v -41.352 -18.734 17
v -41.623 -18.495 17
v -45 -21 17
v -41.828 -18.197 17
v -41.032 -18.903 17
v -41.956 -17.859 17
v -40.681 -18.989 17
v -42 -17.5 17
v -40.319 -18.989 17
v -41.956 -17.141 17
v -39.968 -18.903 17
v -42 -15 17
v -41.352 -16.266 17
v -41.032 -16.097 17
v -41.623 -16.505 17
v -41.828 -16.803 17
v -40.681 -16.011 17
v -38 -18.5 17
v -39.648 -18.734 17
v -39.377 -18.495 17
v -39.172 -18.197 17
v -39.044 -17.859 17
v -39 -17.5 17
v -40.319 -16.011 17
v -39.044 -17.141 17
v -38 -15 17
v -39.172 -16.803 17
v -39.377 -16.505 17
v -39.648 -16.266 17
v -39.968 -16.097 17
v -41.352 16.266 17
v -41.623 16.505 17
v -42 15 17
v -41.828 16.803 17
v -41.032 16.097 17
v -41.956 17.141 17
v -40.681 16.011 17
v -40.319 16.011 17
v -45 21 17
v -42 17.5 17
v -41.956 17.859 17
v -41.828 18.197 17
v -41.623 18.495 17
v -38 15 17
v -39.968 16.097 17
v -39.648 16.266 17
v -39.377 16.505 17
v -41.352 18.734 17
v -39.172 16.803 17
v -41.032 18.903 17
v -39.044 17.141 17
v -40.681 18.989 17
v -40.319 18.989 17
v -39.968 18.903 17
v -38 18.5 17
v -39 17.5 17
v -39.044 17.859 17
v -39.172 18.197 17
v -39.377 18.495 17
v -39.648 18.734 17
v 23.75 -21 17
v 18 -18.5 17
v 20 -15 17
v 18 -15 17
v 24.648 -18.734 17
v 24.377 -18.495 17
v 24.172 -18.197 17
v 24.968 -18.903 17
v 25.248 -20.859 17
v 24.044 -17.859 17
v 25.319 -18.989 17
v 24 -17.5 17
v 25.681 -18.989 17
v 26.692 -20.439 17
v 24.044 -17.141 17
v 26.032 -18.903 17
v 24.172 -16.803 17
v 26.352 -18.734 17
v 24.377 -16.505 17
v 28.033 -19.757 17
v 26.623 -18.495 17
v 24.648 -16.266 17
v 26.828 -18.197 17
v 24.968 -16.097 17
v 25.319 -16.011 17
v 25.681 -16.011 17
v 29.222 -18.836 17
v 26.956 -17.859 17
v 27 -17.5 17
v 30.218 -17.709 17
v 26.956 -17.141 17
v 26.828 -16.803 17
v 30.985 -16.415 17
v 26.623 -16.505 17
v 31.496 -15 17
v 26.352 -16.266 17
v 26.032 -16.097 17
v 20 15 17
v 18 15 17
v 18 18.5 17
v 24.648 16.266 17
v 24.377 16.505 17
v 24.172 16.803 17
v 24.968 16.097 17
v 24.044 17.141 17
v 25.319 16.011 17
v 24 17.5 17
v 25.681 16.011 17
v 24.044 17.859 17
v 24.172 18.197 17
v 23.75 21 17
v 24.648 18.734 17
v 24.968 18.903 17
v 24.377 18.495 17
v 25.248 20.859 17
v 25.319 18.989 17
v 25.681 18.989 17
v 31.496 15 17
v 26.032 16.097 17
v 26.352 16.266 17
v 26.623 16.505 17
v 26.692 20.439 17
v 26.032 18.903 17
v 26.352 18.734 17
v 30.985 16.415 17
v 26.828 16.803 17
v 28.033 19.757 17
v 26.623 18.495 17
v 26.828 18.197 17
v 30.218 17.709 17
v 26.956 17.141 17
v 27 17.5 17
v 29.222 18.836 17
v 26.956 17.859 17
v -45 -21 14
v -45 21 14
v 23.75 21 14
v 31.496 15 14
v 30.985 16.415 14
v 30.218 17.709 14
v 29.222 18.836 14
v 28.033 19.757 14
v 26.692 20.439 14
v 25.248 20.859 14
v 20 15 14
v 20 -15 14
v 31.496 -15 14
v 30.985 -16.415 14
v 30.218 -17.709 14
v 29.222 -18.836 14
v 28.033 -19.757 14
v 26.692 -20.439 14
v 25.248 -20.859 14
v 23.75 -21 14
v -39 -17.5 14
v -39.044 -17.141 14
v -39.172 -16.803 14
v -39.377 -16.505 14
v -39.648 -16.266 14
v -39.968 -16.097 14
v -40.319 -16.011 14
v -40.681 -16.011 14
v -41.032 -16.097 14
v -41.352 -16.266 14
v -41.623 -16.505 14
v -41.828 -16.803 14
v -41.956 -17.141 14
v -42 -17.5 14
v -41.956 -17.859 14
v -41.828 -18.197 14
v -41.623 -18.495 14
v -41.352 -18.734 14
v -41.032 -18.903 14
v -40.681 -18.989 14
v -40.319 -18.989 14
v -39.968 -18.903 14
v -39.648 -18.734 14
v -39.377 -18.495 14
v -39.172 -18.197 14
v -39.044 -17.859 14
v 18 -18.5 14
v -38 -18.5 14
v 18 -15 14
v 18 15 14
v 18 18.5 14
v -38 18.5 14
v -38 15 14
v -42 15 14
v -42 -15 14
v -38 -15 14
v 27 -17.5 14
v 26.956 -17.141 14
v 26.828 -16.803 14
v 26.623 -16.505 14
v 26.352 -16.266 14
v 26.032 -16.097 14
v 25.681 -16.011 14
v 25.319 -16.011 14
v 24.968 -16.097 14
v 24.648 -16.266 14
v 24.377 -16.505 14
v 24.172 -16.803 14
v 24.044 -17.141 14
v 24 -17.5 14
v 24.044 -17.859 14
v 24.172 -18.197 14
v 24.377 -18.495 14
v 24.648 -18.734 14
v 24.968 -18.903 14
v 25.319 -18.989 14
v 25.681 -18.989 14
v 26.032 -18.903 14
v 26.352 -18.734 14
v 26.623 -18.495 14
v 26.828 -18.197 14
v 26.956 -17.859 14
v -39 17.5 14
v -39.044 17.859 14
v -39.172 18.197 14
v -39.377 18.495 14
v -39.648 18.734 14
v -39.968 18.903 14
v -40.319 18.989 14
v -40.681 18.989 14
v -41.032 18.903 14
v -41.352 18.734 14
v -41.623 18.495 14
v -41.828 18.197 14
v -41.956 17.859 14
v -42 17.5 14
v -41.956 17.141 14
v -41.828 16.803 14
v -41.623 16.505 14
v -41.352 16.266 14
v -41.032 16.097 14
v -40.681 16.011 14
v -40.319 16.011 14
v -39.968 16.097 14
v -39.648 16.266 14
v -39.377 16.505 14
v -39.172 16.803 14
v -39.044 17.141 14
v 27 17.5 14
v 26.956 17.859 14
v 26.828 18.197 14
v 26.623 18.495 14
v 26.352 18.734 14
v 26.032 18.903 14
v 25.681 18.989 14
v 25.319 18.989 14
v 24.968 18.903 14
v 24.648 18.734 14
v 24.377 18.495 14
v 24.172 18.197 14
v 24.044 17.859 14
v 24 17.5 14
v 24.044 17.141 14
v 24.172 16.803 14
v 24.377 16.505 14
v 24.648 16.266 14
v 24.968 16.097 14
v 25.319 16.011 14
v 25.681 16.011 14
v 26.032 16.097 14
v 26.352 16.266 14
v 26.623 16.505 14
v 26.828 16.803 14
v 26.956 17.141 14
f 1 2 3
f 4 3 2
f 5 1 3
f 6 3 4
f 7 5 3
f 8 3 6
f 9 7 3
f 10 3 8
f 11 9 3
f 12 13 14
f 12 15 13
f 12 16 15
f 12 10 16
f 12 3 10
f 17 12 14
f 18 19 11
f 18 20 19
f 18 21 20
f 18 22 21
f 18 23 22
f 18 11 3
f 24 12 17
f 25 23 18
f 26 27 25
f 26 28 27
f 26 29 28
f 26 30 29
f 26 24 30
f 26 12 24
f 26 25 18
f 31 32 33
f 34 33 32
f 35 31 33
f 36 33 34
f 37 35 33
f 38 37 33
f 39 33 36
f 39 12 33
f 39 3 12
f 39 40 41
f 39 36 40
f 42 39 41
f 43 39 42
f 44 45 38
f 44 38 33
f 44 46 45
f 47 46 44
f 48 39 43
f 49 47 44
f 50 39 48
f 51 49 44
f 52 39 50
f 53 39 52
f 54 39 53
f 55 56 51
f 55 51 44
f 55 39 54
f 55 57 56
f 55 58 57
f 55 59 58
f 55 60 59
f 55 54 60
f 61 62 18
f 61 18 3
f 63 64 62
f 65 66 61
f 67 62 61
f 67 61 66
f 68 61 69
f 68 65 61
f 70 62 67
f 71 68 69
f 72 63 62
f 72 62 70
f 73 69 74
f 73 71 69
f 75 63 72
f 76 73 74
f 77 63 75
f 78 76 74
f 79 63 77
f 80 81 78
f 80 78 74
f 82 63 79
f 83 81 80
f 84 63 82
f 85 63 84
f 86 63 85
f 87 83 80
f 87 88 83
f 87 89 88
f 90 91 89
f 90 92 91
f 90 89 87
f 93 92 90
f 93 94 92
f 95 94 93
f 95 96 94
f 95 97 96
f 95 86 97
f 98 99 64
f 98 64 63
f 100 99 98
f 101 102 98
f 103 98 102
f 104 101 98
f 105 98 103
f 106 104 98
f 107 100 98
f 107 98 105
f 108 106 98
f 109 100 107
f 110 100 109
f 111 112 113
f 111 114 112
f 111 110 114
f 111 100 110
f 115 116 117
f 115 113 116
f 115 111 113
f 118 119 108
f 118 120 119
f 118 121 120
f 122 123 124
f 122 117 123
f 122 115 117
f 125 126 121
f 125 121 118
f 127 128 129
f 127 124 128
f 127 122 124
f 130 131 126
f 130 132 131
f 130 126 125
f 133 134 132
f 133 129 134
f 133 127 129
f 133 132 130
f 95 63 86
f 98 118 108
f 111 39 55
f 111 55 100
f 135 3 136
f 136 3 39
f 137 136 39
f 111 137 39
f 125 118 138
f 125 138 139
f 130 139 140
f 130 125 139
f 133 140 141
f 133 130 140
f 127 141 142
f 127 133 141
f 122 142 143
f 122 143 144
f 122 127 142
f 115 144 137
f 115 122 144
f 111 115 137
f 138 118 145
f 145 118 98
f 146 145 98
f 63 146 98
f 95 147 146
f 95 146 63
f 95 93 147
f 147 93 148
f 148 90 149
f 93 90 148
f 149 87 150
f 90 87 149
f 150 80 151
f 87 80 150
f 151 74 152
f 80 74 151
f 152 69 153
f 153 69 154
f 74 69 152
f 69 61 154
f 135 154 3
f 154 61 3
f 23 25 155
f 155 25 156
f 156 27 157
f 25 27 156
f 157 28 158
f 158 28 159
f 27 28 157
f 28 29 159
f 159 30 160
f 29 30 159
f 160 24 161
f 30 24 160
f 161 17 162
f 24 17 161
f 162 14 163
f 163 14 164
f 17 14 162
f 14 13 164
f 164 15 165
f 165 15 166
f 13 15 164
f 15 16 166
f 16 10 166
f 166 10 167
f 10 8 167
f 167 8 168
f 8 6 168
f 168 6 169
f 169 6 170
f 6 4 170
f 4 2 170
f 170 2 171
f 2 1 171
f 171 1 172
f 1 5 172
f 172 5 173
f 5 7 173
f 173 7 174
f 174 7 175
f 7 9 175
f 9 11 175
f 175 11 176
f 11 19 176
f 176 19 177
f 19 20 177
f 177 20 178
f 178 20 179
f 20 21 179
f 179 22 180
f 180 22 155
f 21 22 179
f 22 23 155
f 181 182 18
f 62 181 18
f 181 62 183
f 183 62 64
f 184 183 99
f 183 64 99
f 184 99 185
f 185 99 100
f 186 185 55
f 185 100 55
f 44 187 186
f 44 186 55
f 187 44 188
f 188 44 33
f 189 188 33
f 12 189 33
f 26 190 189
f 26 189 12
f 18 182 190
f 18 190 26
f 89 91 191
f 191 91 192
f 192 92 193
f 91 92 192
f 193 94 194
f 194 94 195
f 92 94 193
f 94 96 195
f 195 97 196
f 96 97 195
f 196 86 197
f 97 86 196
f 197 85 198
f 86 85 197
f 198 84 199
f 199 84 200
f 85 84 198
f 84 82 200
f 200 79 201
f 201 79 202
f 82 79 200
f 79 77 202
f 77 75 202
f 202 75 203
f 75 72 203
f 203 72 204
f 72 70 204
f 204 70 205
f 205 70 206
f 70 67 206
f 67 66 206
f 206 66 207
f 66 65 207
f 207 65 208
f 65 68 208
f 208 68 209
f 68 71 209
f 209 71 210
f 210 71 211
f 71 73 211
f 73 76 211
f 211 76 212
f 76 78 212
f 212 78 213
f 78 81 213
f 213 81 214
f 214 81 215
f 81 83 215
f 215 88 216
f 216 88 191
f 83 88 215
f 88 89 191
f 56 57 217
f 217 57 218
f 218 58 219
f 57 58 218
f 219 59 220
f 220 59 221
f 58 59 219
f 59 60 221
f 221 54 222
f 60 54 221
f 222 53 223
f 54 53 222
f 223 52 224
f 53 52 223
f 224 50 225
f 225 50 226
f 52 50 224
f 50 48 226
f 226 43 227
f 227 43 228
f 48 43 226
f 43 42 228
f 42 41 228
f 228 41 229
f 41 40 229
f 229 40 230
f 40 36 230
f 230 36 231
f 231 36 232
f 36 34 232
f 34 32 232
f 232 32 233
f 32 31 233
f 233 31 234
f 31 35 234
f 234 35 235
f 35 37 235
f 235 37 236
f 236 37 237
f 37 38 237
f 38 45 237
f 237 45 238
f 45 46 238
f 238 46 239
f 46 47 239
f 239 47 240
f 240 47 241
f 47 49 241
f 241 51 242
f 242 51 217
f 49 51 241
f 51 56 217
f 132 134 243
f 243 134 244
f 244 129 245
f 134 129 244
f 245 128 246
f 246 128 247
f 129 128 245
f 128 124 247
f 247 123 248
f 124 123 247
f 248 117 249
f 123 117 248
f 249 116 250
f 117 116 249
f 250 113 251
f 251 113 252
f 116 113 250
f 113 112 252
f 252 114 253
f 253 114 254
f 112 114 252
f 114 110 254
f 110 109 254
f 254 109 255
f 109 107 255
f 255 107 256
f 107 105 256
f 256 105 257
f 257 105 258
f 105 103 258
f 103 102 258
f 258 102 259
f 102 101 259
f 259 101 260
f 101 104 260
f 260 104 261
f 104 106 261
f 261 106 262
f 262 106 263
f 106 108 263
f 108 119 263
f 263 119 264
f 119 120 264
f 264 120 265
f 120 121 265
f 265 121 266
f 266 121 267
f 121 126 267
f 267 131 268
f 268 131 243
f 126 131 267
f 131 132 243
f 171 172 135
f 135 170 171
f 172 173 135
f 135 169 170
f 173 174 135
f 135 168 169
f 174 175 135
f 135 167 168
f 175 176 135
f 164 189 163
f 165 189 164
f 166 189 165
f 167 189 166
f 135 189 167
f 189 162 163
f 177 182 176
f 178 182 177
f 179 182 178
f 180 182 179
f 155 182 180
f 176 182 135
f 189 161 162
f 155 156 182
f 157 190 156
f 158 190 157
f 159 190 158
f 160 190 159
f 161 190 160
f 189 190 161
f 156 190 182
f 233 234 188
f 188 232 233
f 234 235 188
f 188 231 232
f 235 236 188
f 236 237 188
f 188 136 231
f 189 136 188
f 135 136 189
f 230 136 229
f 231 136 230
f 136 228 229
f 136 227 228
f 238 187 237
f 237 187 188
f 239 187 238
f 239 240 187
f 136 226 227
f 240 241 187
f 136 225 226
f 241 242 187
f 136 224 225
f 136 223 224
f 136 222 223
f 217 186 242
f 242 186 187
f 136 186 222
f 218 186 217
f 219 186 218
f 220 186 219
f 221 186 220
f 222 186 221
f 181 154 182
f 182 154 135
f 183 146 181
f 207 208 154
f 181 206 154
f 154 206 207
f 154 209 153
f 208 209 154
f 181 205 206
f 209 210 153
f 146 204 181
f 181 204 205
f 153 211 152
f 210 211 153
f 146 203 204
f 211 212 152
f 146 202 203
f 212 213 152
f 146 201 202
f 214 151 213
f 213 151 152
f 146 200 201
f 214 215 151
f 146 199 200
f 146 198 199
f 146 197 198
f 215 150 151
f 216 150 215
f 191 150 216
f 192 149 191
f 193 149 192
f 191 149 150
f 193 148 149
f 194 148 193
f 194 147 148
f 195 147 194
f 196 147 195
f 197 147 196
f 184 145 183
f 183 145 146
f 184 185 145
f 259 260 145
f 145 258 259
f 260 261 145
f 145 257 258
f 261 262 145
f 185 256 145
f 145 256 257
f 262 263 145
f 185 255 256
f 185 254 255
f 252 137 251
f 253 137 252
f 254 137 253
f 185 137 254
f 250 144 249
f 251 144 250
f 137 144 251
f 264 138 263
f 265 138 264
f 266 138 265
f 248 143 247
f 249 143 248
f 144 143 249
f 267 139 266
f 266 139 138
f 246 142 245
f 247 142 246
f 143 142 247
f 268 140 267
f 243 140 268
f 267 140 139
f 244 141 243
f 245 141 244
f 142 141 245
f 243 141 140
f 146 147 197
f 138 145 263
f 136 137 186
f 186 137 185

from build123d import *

# Parameters (mm, degrees)
BOX116_W          = 56
BOX116_H          = 37
BOX116_DEPTH      = 6
BOX130_W          = 60
BOX130_H          = 30
BOX130_DEPTH      = 6
CYLINDER224_R     = 1.5
CYLINDER224_DEPTH = 12
BOX131_W          = 12
BOX131_H          = 30
BOX131_DEPTH      = 6
CYLINDER222_R     = 1.5
CYLINDER222_DEPTH = 12
CYLINDER221_R     = 1.5
CYLINDER221_DEPTH = 12
CYLINDER223_R     = 1.5
CYLINDER223_DEPTH = 12
BOX134_W          = 25
BOX134_H          = 45
BOX134_DEPTH      = 6
BOX097_W          = 100
BOX097_H          = 42
BOX097_DEPTH      = 3
FILLET082_R       = 8


with BuildPart() as w_rfel110:
    # Box116 → Box116 (new body)
    with BuildSketch(Plane(origin=(-38, -18.5, 13), x_dir=(1, 0, 0), z_dir=(0, 0, 1))):
        with Locations((28, 18.5)):
            Rectangle(BOX116_W, BOX116_H)
    extrude(amount=BOX116_DEPTH)


with BuildPart() as w_rfel120:
    # Box130 → Box130 (new body)
    with BuildSketch(Plane(origin=(-42, -15, 13), x_dir=(1, 0, 0), z_dir=(0, 0, 1))):
        with Locations((30, 15)):
            Rectangle(BOX130_W, BOX130_H)
    extrude(amount=BOX130_DEPTH)


with BuildPart() as zylinder224:
    # Cylinder224 → Cylinder224 (new body)
    with BuildSketch(Plane(origin=(25.5, 17.5, 8), x_dir=(1, 0, 0), z_dir=(0, 0, 1))):
        Circle(CYLINDER224_R)
    extrude(amount=CYLINDER224_DEPTH)


with BuildPart() as w_rfel121:
    # Box131 → Box131 (new body)
    with BuildSketch(Plane(origin=(20, -15, 13), x_dir=(1, 0, 0), z_dir=(0, 0, 1))):
        with Locations((6, 15)):
            Rectangle(BOX131_W, BOX131_H)
    extrude(amount=BOX131_DEPTH)


with BuildPart() as zylinder222:
    # Cylinder222 → Cylinder222 (new body)
    with BuildSketch(Plane(origin=(-40.5, -17.5, 8), x_dir=(1, 0, 0), z_dir=(0, 0, 1))):
        Circle(CYLINDER222_R)
    extrude(amount=CYLINDER222_DEPTH)


with BuildPart() as zylinder221:
    # Cylinder221 → Cylinder221 (new body)
    with BuildSketch(Plane(origin=(-40.5, 17.5, 8), x_dir=(1, 0, 0), z_dir=(0, 0, 1))):
        Circle(CYLINDER221_R)
    extrude(amount=CYLINDER221_DEPTH)


with BuildPart() as zylinder223:
    # Cylinder223 → Cylinder223 (new body)
    with BuildSketch(Plane(origin=(25.5, -17.5, 8), x_dir=(1, 0, 0), z_dir=(0, 0, 1))):
        Circle(CYLINDER223_R)
    extrude(amount=CYLINDER223_DEPTH)


with BuildPart() as fusion142:
    # Box134 → Box134 (new body)
    with BuildSketch(Plane(origin=(-70, -22.5, 13), x_dir=(1, 0, 0), z_dir=(0, 0, 1))):
        with Locations((12.5, 22.5)):
            Rectangle(BOX134_W, BOX134_H)
    extrude(amount=BOX134_DEPTH)

    # Fusion142: union Würfel110, Würfel120, Zylinder224, Würfel121, Zylinder222, Zylinder221, Zylinder223
    add(w_rfel110.part)
    add(w_rfel120.part)
    add(zylinder224.part)
    add(w_rfel121.part)
    add(zylinder222.part)
    add(zylinder221.part)
    add(zylinder223.part)


with BuildPart() as cut097:
    # Box097 → Box097 (new body)
    with BuildSketch(Plane(origin=(-68.25, -21, 14), x_dir=(1, 0, 0), z_dir=(0, 0, 1))):
        with Locations((50, 21)):
            Rectangle(BOX097_W, BOX097_H)
    extrude(amount=BOX097_DEPTH)

    # Fillet082
    fillet082_edges = [cut097.edges().sort_by_distance(p)[0] for p in [
        (-68.25, -21, 15.5),
        (-68.25, 21, 15.5),
        (31.75, -21, 15.5),
        (31.75, 21, 15.5),
    ]]
    fillet(fillet082_edges, radius=FILLET082_R)

    # Cut097: cut Fusion142
    add(fusion142.part, mode=Mode.SUBTRACT)


solid = cut097.part
